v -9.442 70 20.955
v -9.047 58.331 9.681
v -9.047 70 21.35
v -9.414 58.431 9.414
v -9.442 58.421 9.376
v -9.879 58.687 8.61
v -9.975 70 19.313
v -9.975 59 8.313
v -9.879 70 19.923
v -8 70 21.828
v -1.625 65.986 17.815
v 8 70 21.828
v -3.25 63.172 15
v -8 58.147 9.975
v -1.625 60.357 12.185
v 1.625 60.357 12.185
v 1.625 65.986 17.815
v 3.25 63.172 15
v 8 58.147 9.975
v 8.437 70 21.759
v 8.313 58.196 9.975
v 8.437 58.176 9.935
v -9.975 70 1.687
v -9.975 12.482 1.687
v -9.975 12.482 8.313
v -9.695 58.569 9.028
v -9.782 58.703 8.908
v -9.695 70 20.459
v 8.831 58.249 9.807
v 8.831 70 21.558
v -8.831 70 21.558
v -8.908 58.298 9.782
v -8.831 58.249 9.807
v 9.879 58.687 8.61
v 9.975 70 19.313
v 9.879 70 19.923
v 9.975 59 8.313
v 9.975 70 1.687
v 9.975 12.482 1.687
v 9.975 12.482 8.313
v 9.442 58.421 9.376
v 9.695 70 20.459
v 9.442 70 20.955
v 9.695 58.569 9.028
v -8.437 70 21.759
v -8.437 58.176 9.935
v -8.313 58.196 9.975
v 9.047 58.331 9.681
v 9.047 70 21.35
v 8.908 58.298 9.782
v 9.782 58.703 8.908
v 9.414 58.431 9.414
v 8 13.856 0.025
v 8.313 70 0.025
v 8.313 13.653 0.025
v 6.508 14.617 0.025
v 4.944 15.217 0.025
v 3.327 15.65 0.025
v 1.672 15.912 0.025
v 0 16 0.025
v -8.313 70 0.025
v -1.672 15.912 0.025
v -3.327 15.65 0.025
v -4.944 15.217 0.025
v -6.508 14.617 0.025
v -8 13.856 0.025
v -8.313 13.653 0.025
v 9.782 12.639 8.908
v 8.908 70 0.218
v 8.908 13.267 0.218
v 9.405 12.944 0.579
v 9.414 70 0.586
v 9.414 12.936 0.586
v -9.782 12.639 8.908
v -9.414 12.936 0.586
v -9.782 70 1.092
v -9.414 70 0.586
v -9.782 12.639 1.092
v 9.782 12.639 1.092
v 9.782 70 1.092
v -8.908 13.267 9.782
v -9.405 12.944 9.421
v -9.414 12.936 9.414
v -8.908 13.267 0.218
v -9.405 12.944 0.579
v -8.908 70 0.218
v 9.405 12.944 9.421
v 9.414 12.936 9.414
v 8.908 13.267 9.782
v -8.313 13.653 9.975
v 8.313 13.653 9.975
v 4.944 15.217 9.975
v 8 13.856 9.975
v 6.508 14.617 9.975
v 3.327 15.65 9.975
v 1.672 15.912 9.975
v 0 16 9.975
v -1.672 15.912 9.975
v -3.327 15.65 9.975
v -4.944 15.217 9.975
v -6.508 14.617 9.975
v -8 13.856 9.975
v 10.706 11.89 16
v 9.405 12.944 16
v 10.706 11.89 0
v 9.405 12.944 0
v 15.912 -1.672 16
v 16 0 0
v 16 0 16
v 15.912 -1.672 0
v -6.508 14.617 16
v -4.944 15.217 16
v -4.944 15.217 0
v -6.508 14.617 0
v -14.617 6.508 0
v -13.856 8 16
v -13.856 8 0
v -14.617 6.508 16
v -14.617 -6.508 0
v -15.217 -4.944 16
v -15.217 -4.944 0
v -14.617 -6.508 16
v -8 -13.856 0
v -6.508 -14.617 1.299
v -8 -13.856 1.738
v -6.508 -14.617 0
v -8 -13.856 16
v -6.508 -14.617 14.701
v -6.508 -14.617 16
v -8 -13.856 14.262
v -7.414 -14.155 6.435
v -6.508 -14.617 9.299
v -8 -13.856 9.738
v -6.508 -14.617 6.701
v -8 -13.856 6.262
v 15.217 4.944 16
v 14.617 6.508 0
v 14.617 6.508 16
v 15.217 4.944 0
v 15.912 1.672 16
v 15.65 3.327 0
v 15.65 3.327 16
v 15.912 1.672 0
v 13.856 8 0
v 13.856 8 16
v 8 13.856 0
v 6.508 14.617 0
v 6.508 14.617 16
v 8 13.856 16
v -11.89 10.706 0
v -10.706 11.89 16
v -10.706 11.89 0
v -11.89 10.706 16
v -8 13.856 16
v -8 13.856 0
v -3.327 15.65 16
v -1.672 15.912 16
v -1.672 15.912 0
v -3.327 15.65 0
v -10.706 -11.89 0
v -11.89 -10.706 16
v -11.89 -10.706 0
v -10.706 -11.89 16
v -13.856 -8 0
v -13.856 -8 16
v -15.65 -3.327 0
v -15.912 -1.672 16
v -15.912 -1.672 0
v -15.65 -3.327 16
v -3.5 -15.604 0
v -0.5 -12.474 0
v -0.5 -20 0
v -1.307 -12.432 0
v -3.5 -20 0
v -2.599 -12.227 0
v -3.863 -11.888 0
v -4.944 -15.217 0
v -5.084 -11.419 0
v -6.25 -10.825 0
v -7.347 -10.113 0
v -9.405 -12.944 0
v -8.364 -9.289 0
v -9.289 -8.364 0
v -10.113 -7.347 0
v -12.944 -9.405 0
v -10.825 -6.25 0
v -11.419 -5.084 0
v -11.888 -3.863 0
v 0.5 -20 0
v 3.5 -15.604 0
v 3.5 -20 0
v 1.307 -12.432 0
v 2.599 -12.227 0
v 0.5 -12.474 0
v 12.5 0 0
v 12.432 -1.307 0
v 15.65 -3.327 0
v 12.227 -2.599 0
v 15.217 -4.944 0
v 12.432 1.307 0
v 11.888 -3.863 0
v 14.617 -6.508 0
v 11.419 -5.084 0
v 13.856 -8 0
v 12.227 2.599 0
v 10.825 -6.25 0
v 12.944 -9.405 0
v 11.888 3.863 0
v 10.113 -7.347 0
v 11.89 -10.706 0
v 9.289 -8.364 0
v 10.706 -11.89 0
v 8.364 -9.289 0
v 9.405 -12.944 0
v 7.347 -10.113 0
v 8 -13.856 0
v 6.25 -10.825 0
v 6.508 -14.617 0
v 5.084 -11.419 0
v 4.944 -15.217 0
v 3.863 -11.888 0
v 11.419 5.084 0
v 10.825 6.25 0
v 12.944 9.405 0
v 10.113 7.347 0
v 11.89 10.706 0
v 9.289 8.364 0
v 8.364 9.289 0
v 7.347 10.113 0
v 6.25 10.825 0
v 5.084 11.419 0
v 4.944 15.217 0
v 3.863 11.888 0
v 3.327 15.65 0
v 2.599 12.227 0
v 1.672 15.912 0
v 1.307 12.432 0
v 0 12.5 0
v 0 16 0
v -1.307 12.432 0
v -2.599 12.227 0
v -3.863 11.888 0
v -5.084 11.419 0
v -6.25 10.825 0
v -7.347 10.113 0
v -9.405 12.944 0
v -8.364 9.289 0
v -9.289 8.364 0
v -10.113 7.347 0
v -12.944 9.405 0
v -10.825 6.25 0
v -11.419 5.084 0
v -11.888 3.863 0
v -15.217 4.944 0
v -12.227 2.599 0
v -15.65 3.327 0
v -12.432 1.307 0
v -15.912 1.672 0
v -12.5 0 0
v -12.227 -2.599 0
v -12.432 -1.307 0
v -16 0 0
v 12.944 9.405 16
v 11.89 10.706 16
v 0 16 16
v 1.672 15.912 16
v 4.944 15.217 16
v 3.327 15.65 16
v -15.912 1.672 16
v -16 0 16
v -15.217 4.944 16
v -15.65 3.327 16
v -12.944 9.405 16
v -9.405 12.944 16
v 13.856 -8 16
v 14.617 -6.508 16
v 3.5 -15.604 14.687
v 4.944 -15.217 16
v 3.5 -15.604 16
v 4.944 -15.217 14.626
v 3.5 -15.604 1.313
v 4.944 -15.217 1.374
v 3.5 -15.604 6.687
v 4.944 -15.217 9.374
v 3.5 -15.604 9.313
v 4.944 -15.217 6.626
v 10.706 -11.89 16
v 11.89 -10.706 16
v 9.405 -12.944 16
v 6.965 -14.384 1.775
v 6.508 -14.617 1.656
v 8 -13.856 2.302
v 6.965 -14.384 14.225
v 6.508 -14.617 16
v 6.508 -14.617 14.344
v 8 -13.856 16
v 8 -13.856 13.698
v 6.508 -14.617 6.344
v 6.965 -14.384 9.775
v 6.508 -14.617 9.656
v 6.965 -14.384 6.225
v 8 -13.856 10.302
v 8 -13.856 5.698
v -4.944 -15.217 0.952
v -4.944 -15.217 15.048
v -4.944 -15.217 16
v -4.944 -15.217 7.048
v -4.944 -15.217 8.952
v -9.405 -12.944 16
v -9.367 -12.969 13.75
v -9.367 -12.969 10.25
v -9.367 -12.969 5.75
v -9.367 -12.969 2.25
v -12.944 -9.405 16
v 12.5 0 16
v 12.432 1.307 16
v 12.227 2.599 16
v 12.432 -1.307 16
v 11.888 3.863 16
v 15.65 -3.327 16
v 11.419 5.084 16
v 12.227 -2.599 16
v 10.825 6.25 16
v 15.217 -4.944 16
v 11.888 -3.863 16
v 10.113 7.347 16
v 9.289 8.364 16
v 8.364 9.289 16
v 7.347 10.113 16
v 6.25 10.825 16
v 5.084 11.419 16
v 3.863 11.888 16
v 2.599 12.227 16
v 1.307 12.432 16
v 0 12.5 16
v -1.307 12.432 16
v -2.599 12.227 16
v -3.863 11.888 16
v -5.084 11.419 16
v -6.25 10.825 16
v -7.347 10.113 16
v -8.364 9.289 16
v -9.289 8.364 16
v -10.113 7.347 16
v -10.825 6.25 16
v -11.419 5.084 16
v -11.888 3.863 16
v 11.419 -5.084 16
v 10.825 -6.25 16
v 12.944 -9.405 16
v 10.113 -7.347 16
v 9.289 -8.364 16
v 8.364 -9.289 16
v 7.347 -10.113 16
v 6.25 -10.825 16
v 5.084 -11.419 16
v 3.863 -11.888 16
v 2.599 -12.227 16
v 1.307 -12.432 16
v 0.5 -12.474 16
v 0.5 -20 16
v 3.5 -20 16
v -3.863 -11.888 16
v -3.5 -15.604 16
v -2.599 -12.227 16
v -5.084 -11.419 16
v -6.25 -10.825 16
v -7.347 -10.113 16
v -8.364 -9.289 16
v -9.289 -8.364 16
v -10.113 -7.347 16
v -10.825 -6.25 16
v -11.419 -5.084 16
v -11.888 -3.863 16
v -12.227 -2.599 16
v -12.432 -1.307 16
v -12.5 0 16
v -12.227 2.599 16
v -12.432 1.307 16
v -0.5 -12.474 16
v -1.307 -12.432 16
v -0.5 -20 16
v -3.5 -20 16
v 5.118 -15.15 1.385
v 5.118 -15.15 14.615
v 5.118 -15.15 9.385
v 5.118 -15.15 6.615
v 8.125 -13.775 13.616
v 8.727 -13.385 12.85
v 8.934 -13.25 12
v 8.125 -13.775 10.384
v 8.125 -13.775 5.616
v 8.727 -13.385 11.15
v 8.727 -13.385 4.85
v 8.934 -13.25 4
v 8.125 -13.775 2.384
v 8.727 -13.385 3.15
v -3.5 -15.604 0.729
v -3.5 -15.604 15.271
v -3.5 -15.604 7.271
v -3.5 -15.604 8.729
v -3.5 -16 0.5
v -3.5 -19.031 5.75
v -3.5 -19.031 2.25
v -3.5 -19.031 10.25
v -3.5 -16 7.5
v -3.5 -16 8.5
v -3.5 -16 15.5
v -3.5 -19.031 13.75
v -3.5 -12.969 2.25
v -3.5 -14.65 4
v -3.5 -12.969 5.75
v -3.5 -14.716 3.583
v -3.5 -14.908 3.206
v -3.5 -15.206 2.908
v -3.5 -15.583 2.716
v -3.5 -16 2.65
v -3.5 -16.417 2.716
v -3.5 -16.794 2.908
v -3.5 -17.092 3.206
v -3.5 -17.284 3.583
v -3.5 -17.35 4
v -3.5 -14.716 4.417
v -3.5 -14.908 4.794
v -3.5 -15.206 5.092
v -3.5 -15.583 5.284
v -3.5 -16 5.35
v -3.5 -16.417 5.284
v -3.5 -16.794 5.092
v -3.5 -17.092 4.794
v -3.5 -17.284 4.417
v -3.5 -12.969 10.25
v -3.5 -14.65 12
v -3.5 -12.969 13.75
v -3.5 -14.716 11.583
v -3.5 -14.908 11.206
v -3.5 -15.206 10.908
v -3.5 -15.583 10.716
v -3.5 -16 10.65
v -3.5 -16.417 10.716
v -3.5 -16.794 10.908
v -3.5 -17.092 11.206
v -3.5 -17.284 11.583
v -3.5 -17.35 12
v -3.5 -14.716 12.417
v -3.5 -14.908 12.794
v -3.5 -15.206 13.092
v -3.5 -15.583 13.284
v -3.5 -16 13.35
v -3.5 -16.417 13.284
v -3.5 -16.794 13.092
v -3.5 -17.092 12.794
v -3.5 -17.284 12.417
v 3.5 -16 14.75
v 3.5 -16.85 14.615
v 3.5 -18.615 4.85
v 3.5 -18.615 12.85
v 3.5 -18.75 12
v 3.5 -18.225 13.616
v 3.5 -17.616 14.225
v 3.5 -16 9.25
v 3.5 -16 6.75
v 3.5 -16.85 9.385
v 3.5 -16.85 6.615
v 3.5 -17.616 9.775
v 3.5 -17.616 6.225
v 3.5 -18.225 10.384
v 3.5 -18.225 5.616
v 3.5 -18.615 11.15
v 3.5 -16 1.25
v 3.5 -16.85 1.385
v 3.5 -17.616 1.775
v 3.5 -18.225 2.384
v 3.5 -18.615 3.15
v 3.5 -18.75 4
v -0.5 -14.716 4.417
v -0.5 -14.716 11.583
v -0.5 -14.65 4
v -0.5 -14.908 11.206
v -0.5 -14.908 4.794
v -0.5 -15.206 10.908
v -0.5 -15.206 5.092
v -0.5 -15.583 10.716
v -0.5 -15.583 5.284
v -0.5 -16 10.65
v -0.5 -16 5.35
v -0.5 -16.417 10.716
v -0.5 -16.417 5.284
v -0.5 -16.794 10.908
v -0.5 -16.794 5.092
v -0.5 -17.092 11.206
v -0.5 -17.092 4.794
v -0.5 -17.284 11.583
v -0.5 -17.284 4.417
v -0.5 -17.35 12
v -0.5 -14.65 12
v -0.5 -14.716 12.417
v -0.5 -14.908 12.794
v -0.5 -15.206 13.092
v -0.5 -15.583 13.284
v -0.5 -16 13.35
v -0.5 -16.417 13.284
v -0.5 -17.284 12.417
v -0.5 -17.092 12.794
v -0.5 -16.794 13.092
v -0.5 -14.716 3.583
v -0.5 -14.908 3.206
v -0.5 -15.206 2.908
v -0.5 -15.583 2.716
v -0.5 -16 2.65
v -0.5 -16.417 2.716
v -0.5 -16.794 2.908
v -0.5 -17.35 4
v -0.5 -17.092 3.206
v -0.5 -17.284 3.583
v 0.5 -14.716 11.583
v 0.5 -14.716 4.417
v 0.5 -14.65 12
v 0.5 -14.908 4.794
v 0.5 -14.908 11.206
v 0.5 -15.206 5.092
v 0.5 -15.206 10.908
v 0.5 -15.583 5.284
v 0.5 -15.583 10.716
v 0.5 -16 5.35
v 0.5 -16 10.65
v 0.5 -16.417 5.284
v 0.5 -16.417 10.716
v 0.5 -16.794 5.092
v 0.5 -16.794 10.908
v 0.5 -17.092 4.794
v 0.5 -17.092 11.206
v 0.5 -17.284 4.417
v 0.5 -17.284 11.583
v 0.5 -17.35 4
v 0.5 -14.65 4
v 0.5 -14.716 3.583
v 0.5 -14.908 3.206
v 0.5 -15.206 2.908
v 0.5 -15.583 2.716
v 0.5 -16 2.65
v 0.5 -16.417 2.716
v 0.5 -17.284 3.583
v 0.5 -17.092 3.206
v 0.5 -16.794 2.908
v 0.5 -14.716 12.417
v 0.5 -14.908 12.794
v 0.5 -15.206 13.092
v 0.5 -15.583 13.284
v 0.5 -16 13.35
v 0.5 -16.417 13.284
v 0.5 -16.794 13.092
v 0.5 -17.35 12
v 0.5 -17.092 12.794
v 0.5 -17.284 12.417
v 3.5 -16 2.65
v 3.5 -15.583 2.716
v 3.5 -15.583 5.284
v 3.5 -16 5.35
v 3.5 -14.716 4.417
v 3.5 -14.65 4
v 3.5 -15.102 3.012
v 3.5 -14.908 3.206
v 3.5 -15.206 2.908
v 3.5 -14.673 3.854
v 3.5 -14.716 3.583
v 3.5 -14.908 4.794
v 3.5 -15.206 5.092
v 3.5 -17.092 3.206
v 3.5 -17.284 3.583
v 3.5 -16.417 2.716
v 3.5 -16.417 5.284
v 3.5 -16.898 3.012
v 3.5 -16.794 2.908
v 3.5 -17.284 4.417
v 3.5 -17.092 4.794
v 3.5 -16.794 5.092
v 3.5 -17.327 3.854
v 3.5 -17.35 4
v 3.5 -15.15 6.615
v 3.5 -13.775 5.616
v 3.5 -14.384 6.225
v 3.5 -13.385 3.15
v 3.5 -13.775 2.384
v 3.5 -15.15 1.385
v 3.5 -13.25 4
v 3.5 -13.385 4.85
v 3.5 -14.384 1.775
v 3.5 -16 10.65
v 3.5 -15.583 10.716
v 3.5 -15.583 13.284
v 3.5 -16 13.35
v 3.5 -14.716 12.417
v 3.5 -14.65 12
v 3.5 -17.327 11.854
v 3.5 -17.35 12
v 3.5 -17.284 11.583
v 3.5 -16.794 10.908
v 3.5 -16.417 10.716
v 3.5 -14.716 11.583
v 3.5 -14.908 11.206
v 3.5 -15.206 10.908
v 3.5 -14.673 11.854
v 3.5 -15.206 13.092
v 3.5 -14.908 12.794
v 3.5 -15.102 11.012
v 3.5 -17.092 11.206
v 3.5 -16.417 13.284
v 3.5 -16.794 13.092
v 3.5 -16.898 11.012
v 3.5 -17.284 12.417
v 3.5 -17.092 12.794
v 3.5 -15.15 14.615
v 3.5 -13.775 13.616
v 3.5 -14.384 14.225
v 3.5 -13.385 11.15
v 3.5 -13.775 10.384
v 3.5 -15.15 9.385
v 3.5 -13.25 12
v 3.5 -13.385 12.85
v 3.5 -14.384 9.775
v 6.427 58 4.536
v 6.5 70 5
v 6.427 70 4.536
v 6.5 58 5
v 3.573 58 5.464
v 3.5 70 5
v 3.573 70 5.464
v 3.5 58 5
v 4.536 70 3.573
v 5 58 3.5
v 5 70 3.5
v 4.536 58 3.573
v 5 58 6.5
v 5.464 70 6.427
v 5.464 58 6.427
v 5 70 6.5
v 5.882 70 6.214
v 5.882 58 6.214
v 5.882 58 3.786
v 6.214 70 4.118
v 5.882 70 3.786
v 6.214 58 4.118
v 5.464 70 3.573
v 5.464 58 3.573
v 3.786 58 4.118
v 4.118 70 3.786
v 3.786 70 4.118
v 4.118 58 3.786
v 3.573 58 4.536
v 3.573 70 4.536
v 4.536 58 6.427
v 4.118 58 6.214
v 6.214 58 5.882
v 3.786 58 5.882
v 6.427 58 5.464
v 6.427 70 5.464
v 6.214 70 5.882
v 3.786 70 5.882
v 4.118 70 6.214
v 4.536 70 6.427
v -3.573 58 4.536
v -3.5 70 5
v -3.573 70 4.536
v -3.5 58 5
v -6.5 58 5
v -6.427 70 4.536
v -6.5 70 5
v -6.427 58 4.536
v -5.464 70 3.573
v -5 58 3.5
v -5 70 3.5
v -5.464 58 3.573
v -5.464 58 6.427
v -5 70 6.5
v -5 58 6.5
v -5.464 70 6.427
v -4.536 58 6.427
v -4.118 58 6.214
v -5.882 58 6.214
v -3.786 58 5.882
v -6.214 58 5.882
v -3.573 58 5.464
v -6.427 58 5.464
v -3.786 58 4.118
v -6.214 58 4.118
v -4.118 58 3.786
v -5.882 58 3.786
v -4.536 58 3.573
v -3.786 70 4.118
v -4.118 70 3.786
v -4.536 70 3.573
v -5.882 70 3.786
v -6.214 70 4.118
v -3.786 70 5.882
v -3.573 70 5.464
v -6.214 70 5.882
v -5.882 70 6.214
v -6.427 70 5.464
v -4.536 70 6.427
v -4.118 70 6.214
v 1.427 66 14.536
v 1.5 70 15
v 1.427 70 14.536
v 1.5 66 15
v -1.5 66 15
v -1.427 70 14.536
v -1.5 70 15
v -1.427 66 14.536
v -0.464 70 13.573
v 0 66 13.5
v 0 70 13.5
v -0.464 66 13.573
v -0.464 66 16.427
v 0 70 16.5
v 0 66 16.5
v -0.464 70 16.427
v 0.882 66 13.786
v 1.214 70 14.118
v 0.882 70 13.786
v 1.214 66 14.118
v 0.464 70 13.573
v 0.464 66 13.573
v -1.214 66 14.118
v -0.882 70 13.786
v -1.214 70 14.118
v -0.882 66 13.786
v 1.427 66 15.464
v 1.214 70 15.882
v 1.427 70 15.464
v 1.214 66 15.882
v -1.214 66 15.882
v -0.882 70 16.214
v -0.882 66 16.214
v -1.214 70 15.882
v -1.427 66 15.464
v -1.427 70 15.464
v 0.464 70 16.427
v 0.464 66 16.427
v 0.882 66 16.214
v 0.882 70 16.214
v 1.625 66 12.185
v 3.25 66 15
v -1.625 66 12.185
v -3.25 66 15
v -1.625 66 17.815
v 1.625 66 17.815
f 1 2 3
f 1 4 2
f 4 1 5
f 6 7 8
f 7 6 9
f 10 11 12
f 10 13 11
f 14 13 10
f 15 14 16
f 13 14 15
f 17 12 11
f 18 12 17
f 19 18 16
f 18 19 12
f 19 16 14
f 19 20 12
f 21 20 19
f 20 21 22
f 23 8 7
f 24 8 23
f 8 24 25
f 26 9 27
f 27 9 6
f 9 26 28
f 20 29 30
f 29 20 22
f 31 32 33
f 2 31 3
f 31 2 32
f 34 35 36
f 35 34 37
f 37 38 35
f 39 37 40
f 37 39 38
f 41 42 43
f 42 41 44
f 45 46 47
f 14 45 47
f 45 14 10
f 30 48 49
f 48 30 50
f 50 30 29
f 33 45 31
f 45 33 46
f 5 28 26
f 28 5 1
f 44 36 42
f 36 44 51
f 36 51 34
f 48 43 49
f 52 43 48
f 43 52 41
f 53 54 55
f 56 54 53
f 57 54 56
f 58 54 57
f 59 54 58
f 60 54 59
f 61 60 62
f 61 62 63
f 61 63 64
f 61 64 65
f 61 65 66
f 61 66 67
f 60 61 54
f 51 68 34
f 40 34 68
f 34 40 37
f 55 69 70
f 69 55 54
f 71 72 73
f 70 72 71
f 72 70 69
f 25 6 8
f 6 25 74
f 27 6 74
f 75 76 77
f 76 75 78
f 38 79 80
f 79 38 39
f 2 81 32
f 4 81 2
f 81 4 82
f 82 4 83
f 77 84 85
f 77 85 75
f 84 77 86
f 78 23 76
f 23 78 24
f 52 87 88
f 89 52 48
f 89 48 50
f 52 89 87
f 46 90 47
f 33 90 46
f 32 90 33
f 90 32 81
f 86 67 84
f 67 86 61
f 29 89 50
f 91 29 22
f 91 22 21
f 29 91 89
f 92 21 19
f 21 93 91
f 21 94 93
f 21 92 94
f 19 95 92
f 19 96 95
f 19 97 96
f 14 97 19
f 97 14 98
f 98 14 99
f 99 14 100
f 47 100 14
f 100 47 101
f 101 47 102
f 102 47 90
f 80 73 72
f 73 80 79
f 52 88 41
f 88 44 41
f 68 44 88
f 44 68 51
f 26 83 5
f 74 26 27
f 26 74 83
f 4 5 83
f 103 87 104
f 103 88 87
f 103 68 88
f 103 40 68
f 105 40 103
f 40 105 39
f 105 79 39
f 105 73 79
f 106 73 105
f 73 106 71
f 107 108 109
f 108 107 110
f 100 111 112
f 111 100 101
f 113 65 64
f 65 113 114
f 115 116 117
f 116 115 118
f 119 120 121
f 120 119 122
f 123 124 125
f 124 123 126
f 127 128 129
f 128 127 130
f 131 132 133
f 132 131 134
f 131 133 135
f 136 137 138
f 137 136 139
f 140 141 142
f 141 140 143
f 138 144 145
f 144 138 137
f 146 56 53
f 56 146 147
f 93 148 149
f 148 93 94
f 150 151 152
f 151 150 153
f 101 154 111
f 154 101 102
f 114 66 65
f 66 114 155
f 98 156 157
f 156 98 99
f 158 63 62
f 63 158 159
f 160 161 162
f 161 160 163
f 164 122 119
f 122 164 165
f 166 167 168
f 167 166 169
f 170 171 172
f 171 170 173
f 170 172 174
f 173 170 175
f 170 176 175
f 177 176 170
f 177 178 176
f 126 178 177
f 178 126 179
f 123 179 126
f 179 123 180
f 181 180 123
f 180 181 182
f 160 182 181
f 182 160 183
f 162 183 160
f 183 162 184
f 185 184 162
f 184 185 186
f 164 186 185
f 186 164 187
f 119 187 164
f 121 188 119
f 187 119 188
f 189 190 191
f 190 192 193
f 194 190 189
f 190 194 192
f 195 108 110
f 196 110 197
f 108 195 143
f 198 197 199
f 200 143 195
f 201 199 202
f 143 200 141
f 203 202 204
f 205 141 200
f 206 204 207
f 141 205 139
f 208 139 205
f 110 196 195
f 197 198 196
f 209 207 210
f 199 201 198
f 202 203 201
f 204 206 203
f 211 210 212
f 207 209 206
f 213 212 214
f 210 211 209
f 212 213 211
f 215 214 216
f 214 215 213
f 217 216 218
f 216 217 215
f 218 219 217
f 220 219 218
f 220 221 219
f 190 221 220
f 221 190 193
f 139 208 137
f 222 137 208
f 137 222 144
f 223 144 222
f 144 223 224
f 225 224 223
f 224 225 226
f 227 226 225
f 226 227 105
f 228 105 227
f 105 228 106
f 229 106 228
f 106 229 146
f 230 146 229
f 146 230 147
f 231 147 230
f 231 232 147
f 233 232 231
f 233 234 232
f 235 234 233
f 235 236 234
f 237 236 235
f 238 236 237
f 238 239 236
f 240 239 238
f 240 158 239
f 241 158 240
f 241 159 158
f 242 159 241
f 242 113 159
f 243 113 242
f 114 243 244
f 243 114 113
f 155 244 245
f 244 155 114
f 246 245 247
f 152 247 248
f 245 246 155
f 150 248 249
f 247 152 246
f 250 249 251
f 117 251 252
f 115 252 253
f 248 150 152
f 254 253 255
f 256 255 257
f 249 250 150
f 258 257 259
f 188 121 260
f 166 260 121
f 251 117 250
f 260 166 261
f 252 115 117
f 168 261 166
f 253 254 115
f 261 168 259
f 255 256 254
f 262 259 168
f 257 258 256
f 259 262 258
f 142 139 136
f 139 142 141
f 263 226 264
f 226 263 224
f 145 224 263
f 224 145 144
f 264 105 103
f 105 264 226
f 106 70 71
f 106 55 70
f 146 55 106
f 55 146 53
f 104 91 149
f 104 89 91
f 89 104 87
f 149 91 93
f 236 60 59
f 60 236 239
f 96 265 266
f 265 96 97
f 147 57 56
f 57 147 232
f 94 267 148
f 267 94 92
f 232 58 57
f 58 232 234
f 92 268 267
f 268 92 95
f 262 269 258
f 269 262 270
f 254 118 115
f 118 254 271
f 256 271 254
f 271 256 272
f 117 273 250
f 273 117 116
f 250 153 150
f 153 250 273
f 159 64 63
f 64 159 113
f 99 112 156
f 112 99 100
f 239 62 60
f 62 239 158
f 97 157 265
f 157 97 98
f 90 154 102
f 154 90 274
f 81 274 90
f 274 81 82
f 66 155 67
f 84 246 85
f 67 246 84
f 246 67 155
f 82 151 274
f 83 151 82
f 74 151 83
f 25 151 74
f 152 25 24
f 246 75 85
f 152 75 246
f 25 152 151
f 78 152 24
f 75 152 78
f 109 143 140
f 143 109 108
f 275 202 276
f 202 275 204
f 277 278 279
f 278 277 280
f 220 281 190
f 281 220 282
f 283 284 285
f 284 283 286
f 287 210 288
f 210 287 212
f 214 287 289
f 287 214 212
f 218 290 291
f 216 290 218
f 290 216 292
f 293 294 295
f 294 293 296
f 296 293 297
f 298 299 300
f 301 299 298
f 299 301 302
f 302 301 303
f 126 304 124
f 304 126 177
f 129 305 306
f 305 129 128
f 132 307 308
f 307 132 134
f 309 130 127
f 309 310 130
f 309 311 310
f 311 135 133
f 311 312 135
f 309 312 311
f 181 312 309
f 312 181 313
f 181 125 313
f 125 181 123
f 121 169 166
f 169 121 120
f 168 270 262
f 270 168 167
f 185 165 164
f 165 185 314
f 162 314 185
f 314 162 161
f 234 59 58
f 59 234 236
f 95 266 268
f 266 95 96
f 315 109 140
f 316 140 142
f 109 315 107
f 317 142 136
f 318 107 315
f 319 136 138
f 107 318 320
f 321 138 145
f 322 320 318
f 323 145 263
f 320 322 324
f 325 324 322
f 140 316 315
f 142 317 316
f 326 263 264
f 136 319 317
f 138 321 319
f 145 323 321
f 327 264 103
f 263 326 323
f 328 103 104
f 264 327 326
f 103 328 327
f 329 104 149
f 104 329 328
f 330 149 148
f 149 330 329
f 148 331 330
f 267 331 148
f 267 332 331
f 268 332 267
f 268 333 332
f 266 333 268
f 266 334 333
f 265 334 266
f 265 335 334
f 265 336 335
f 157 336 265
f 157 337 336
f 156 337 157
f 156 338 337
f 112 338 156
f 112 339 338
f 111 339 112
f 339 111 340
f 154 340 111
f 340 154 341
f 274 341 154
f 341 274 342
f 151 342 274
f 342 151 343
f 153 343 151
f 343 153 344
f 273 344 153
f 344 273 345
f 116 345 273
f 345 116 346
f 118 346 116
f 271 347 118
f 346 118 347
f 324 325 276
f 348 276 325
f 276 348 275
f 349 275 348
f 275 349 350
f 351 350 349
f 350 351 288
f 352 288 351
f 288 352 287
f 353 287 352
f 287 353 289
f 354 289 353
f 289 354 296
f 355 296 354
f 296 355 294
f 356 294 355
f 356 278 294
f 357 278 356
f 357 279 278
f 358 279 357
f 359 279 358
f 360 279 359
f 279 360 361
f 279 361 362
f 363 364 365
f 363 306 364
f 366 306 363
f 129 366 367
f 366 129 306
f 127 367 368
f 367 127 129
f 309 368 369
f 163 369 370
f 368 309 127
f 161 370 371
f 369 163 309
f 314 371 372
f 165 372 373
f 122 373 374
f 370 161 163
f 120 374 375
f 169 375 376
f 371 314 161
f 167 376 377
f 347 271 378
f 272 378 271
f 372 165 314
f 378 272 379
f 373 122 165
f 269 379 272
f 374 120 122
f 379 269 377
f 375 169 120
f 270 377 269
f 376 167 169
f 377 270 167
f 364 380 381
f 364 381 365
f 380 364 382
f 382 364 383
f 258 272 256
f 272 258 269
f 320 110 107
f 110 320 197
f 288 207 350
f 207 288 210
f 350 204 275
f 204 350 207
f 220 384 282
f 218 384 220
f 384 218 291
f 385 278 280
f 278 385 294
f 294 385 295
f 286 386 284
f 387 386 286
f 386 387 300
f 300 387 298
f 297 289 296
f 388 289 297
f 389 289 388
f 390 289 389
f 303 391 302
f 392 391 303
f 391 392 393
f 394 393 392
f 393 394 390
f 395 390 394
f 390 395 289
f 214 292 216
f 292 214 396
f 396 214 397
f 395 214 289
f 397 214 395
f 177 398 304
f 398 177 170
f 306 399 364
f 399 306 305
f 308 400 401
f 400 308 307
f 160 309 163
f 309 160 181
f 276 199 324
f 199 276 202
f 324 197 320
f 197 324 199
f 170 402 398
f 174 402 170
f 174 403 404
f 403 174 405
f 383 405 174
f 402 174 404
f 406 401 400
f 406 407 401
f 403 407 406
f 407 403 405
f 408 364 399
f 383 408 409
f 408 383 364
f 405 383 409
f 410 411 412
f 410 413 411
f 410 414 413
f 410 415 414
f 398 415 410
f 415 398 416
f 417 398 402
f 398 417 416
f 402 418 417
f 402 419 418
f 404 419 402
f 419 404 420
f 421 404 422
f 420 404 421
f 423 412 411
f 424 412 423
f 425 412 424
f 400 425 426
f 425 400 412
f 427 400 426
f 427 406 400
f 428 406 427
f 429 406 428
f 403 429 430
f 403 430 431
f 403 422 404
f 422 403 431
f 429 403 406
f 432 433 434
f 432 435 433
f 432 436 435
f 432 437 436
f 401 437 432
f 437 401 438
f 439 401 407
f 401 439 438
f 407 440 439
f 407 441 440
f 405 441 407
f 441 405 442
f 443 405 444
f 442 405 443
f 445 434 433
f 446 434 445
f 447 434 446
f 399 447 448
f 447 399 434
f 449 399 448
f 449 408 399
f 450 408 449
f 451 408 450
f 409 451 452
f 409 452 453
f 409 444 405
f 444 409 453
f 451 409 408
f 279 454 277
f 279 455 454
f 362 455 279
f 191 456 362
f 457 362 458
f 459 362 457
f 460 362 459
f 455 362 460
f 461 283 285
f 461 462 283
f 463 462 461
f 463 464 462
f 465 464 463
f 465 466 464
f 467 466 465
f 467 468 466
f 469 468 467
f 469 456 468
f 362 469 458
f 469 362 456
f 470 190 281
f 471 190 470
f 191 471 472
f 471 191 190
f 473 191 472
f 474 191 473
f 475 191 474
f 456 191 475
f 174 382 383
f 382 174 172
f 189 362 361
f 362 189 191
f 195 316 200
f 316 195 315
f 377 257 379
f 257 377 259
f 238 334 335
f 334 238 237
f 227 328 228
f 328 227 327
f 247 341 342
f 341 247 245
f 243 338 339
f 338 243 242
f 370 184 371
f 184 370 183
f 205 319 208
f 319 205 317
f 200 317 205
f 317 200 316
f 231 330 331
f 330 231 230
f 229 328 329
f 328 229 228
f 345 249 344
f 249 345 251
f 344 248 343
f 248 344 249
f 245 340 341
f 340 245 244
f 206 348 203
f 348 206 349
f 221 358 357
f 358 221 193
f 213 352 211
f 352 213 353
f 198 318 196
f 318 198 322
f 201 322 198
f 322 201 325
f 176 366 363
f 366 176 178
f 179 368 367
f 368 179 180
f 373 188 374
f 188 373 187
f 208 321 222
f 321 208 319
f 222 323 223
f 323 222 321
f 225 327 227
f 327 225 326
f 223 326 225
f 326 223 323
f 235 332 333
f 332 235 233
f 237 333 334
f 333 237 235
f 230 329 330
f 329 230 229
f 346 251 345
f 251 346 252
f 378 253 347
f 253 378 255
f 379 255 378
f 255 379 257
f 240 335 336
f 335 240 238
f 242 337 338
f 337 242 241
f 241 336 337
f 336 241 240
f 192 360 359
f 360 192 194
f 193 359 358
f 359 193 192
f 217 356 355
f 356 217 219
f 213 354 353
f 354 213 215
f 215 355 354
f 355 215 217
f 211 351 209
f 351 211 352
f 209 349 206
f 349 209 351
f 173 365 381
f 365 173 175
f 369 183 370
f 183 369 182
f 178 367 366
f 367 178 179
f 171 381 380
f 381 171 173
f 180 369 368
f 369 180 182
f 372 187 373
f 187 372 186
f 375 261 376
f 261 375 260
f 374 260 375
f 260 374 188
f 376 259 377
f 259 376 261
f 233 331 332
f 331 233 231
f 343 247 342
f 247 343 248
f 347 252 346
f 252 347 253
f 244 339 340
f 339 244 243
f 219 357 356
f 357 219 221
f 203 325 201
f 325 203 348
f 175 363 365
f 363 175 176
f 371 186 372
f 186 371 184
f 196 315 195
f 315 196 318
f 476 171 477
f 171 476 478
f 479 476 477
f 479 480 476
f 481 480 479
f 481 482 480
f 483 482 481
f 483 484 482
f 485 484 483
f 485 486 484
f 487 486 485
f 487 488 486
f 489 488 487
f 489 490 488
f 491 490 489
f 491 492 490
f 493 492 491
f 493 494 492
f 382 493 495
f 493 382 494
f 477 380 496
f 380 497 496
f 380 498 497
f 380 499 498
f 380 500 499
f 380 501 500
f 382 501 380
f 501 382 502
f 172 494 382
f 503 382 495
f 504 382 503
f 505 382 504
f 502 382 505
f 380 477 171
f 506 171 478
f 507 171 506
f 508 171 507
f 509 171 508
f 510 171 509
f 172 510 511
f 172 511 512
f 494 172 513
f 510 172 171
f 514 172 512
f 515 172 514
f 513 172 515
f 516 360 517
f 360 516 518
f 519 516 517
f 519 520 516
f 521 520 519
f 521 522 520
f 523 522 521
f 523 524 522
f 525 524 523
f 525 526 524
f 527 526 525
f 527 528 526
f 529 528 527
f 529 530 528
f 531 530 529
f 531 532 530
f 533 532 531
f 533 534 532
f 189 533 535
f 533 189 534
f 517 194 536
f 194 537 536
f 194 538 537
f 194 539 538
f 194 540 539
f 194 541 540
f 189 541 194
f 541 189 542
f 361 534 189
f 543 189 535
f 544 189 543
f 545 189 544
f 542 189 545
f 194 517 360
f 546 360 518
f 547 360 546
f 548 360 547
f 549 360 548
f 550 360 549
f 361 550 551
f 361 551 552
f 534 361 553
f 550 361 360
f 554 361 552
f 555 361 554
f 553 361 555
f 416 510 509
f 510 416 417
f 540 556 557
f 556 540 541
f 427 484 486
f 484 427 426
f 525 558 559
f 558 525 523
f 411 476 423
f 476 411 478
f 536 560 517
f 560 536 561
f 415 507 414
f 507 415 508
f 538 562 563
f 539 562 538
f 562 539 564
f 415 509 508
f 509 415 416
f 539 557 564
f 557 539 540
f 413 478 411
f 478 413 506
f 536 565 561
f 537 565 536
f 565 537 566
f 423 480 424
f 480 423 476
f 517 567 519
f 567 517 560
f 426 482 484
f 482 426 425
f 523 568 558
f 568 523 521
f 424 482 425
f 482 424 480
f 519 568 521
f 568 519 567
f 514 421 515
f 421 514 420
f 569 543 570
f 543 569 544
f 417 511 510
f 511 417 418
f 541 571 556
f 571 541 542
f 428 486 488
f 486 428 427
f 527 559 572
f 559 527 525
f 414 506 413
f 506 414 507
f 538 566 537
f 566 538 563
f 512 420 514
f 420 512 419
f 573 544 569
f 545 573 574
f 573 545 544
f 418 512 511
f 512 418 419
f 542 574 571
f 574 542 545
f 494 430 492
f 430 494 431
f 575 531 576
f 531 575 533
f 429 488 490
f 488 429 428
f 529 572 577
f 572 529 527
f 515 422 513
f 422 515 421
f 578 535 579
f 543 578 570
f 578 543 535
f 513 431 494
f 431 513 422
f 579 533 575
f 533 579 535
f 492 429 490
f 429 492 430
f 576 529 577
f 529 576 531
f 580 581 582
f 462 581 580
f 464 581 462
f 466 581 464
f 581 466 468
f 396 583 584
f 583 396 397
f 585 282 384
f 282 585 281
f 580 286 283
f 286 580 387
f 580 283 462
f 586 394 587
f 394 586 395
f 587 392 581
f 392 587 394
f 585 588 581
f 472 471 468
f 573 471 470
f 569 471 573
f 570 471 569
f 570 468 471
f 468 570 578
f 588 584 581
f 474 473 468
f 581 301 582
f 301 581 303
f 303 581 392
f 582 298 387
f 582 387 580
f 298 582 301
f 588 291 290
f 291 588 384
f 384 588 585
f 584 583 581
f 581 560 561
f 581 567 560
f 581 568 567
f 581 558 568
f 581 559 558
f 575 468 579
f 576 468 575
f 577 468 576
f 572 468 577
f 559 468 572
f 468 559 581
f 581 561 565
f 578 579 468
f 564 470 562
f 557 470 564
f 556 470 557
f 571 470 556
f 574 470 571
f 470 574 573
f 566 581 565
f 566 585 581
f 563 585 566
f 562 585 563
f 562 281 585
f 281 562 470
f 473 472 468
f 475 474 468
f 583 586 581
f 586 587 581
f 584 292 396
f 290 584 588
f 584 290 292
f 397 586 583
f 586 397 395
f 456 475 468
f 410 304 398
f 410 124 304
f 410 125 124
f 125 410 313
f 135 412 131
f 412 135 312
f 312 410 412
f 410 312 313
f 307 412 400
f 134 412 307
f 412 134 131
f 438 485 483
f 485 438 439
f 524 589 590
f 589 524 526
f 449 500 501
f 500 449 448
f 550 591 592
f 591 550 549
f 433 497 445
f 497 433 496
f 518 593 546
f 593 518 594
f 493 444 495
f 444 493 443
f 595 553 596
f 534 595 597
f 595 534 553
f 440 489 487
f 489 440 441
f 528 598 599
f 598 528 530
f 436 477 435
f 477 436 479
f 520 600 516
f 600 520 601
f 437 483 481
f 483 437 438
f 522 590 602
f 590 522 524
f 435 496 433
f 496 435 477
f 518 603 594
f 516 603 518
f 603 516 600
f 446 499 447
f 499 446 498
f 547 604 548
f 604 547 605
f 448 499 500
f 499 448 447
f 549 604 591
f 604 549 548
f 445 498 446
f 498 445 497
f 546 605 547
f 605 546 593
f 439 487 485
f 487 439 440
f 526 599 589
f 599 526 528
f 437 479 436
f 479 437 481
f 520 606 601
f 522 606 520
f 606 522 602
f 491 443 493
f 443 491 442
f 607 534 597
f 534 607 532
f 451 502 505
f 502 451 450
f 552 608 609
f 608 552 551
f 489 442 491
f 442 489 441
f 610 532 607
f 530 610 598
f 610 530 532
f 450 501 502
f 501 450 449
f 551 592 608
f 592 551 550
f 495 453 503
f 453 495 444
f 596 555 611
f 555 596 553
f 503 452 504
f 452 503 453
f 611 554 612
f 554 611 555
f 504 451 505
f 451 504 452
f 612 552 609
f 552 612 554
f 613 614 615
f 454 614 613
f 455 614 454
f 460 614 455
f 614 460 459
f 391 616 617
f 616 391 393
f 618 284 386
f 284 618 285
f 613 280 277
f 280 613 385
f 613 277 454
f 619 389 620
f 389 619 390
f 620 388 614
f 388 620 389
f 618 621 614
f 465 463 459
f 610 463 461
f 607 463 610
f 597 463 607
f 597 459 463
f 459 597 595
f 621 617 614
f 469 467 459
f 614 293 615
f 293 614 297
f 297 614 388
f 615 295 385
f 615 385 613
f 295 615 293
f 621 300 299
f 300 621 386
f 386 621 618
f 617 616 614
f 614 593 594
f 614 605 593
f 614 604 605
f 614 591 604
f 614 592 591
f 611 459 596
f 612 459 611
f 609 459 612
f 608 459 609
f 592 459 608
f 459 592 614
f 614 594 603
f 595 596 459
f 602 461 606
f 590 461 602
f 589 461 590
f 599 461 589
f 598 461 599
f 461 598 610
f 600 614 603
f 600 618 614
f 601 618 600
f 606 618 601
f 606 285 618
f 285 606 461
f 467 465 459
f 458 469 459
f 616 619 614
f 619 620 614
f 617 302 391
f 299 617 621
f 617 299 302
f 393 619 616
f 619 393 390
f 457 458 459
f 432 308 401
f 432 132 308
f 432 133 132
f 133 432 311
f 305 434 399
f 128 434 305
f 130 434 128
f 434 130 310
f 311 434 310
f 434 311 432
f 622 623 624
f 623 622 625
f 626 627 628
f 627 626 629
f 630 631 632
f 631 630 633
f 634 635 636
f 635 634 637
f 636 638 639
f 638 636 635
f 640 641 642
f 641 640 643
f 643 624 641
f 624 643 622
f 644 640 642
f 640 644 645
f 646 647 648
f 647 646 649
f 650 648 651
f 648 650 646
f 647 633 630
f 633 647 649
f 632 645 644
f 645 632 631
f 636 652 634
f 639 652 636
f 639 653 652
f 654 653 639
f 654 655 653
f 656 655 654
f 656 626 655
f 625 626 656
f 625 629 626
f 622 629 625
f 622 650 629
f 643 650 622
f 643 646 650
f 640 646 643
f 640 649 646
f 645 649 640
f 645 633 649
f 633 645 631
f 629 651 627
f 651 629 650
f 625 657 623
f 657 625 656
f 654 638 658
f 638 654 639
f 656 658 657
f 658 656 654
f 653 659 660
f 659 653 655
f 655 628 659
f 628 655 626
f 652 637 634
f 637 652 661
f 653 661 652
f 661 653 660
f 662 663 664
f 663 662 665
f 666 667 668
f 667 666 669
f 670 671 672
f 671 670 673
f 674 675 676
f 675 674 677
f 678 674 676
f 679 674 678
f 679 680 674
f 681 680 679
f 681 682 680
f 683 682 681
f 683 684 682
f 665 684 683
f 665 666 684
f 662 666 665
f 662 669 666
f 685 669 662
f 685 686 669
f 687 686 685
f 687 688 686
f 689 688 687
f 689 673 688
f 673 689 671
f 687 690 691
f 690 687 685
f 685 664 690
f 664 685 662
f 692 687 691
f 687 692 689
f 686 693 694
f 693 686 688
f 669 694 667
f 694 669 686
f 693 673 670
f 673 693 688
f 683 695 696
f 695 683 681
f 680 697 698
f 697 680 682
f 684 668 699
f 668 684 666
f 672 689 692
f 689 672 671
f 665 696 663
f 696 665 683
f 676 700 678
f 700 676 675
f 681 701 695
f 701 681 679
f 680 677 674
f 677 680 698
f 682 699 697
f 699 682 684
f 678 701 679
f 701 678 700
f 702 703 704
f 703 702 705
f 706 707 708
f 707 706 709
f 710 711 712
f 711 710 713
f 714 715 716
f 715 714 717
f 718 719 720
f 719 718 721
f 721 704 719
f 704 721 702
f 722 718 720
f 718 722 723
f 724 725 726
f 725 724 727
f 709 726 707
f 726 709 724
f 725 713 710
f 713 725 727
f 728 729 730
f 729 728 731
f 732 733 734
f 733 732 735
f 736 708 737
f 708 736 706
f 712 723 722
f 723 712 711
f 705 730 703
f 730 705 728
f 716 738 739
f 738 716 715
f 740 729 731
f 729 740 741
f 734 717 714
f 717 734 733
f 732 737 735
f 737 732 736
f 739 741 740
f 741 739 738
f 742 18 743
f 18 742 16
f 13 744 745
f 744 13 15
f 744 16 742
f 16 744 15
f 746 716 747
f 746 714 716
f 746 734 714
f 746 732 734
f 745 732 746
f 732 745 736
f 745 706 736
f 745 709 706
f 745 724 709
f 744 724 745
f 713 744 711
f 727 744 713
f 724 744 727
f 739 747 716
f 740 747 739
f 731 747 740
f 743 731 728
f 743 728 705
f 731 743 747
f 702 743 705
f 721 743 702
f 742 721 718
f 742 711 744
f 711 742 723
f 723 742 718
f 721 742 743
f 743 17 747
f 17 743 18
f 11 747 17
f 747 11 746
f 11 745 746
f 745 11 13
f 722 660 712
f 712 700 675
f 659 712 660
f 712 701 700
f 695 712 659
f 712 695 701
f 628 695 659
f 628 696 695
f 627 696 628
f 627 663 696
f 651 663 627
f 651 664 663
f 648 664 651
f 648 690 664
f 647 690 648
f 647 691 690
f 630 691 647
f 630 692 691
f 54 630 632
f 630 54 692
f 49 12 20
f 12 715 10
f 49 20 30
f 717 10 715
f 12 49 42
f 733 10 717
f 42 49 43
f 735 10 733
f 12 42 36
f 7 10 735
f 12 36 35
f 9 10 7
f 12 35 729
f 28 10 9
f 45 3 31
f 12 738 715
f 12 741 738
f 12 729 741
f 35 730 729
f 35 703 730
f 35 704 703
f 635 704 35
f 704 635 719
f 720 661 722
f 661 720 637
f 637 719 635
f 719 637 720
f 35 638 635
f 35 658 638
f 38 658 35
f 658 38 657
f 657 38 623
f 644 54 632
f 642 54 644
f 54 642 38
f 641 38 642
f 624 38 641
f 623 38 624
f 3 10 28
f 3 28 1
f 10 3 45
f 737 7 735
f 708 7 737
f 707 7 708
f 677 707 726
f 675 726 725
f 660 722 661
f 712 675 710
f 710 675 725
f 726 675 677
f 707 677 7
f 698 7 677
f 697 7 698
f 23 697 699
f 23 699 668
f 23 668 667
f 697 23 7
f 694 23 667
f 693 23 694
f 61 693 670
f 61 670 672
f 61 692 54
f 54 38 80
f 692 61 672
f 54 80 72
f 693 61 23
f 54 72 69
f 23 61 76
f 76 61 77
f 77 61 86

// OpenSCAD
$fn=20;

difference(){
union(){
cylinder(d=32,h=16,$fn=60);
translate([-8,9,2])
minkowski(){
sphere(d=4);
union(){    
cube(size=[16,66,6]);
translate([0,44,0])rotate([90,0,90])
linear_extrude(height=16)polygon([[0,0],[20,0],[20,20]]);
}    
}
translate([-3.5,-20,0]) cube(size=[7,7,16]);
}
translate([0,0,-1]) cylinder(d=25,h=22,$fn=60);
translate([-.5,-25,-1]) cube(size=[1,20,22]);

translate ([-5,-16,4])rotate([0,90,0])
cylinder(d=2.7,h=100);
translate ([3.5,-16,4])rotate([0,90,0])
cylinder(d=5.5,h=100);
translate ([-13.5,-16,4])rotate([0,90,0])
cylinder(d=7,h=10,$fn=6);

translate ([-5,-16,12])rotate([0,90,0])
cylinder(d=2.7,h=100);
translate ([3.5,-16,12])rotate([0,90,0])
cylinder(d=5.5,h=100);
translate ([-13.5,-16,12])rotate([0,90,0])
cylinder(d=7,h=10,$fn=6);

translate([5,58,5])rotate([-90,0,0])
cylinder(d=3,h=100);
translate([-5,58,5])rotate([-90,0,0])
cylinder(d=3,h=100);

translate([0,60,15])rotate([-90,0,0])
cylinder(d=3,h=100);
translate([0,56,15])rotate([-90,0,0])
cylinder(d=6.5,h=10,$fn=6);

translate([0,90,0])cube([60,40,60],center=true);
}
